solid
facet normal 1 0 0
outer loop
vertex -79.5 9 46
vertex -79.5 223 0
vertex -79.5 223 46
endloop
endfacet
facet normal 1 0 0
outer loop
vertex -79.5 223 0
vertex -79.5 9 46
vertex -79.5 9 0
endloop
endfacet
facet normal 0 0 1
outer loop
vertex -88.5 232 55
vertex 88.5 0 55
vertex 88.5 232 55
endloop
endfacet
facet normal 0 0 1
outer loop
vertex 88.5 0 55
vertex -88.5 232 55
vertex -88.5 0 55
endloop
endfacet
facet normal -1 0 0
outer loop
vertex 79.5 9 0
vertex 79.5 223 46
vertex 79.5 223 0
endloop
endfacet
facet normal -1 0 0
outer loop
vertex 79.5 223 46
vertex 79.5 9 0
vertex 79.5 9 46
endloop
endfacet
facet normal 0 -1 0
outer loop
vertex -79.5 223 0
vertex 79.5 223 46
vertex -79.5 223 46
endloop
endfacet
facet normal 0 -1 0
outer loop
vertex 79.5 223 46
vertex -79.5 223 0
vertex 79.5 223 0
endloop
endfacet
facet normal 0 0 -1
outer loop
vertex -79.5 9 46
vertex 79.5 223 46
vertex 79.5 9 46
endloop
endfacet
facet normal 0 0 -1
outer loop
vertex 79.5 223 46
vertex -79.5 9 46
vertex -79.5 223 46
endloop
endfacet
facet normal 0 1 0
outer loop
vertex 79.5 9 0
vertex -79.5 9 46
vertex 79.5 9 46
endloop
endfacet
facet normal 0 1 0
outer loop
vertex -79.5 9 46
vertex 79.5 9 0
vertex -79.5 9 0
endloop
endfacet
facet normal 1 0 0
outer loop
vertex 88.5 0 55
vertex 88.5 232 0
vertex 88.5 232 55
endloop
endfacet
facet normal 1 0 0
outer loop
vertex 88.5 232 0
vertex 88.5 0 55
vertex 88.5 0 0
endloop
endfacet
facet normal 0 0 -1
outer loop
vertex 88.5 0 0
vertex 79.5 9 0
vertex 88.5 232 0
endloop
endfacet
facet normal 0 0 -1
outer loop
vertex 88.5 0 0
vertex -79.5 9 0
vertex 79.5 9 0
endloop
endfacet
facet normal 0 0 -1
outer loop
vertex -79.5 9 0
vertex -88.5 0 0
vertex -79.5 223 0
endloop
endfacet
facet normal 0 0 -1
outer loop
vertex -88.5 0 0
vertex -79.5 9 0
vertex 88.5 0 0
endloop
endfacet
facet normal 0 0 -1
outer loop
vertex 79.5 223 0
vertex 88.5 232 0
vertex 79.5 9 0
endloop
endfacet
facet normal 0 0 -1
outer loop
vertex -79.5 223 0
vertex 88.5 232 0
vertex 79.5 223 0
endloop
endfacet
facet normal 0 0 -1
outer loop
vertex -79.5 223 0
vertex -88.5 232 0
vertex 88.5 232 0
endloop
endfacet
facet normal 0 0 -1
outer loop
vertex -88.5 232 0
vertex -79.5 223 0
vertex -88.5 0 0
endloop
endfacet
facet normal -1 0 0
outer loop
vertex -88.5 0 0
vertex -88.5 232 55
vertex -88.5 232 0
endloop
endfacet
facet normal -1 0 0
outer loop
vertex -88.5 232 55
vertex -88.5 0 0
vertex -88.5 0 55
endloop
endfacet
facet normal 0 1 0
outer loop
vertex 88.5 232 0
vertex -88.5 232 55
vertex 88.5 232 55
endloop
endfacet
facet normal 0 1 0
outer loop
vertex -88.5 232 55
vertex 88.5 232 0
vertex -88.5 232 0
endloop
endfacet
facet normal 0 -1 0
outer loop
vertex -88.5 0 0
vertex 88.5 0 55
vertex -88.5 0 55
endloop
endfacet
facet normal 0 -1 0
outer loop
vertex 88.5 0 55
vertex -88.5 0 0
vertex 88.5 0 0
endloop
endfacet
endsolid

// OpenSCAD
//Copyright 2022 Gilgamech Technologies
//Title: Enigma box top
//Made by: Stephen Gillie
//Created on: 3/23/2022
//Updated on: 3/23/2022
//Units: millimeters
//Notes: 

//outerBox
oBLen=230;
oBWid=9;
oBHei=55;
//innerBox
iBins=(159/2);

//bottom
botLen=177;
botWid=221;
hBotLen=botLen/2;
hBotWid=botWid/2;

hOBWid=oBWid/2;
hOther=45/2;

translate([0,116,-127.5]){
boxTop(155);
}

module boxTop(zLoc=55) {
union(){
translate([0,0,zLoc+23]){
    cube([botLen-18,botWid-7,oBWid], center=true);
}
topBoxSide(zLoc,iBins+hOBWid,oBLen,oBHei);//side
topBoxSide(zLoc,-iBins-hOBWid,oBLen,oBHei);//other side
rotate([0,0,90]){
translate([iBins+32,0,zLoc]){
    cube([oBWid,botLen,oBHei], center=true);//back
}}
rotate([0,0,-90]){
translate([iBins+32,0,zLoc]){
    cube([oBWid,botLen,oBHei], center=true);//front
}}}}
module topBoxSide(zLoc,xLoc=iBins,y=botLen,z=oBHei,x=oBWid) {
translate([xLoc,0,zLoc]){
    cube([x,y,z], center=true);
}}
